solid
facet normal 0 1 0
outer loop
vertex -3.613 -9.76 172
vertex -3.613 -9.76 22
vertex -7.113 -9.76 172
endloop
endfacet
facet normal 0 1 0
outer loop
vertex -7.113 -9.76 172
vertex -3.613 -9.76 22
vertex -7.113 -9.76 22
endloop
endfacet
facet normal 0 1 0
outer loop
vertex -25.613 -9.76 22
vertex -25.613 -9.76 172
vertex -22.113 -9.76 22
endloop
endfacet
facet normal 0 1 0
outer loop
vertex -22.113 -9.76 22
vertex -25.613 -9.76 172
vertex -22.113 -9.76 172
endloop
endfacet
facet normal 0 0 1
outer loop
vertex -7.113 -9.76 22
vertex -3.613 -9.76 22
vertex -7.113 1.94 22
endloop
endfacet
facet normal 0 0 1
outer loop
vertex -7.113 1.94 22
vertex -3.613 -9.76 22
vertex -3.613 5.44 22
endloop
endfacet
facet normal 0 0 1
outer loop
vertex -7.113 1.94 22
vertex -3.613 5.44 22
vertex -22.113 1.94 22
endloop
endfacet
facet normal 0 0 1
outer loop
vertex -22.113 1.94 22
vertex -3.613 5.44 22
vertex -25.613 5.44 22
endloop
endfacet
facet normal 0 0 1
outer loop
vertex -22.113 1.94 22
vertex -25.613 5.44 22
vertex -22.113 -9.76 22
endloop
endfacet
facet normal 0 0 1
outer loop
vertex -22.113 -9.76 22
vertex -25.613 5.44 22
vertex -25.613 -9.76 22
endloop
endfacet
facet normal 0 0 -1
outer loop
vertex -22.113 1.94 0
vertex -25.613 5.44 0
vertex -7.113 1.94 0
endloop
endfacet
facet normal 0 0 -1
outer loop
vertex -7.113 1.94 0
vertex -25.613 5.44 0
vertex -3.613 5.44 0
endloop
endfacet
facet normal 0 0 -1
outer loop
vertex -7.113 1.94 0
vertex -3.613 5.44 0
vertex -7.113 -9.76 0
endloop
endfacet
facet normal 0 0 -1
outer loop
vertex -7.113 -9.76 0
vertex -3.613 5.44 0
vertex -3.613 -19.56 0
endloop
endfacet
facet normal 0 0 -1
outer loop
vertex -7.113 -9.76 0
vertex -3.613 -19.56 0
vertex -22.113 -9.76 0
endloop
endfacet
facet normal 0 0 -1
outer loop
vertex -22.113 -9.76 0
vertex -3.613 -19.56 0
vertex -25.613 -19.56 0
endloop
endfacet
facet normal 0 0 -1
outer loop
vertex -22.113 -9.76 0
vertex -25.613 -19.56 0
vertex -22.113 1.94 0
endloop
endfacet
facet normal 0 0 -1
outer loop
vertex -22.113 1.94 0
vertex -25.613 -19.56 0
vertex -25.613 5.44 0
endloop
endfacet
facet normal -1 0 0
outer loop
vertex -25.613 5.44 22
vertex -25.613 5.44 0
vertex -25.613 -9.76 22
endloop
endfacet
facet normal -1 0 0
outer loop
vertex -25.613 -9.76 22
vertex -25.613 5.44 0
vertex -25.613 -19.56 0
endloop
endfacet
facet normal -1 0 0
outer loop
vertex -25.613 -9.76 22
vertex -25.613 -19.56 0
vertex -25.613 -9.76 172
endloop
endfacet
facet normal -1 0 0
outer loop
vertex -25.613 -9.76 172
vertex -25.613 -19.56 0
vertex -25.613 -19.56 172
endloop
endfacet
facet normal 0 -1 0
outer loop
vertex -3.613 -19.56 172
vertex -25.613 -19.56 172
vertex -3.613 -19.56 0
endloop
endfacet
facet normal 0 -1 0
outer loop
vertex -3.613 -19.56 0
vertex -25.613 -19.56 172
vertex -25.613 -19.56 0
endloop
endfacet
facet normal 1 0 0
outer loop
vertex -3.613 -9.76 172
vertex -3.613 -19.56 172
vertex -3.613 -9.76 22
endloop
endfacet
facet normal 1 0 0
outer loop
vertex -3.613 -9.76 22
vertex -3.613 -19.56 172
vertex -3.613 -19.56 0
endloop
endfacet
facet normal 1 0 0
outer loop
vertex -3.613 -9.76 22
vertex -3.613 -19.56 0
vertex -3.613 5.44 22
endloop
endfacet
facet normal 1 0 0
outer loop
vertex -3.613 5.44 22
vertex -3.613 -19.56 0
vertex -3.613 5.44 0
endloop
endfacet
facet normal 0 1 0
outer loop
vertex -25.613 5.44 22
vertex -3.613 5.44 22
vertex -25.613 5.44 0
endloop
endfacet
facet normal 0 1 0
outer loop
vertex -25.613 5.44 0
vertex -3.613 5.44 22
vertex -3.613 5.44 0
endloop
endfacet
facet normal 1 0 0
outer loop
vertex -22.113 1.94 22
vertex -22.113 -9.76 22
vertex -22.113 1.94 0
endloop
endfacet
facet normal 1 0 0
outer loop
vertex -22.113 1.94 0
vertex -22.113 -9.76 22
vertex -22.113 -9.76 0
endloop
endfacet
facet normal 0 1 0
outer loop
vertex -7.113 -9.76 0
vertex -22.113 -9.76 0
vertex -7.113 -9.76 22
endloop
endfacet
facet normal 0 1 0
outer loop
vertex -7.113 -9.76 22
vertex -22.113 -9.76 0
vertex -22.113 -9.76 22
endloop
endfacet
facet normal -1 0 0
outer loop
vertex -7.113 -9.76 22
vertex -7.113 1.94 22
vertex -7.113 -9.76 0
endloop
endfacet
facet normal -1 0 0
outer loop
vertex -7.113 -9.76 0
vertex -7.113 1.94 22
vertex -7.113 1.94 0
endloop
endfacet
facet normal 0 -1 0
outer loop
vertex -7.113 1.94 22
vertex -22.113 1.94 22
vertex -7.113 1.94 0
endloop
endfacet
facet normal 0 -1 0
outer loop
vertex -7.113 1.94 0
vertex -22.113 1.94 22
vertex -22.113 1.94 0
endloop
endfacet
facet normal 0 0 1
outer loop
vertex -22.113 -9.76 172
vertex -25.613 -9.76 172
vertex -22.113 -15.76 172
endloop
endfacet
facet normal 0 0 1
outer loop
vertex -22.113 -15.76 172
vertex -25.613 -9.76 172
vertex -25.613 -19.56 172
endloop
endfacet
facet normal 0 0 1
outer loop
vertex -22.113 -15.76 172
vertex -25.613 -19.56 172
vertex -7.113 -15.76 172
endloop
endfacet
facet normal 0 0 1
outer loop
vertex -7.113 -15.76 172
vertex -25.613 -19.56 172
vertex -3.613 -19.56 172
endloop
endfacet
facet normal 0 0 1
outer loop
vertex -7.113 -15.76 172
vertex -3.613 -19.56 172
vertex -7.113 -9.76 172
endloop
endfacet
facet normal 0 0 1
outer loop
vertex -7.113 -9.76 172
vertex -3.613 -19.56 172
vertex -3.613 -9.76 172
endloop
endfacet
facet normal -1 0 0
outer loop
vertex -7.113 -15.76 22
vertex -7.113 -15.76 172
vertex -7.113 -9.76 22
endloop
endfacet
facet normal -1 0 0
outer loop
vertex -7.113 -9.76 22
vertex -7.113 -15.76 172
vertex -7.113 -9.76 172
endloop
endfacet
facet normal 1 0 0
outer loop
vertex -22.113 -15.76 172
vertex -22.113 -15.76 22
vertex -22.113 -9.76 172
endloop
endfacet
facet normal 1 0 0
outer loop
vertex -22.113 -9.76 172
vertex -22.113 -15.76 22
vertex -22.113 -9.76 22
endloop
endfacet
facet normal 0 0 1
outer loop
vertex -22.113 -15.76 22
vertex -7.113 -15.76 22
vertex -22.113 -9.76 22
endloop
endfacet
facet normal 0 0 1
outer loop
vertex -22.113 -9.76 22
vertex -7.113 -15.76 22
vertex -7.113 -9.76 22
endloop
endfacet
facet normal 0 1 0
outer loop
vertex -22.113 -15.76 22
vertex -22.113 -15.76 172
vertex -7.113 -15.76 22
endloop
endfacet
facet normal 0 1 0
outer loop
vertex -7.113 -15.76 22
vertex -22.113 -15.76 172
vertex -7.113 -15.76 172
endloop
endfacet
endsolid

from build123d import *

# Parameters (mm, degrees)
SKETCH_2_W          = 22
SKETCH_2_H          = 25
SKETCH_2_W_2        = 15
SKETCH_2_H_2        = 11.7
EXTRUDE_1_DEPTH     = 22
SKETCH_3_W          = 22
SKETCH_3_H          = 9.8
EXTRUDE_2_DEPTH     = 150
SKETCH_4_W          = 15
SKETCH_4_H          = 150
CUT_EXTRUDE_1_DEPTH = 6


with BuildPart() as part:
    # 草圖2 → 填料-伸長1 (new body)
    with BuildSketch(Plane.XY):
        with Locations((-14.61342143, -7.059615385)):
            Rectangle(SKETCH_2_W, SKETCH_2_H)
        with Locations((-14.61342143, -3.909615385)):
            Rectangle(SKETCH_2_W_2, SKETCH_2_H_2, mode=Mode.SUBTRACT)
    extrude(amount=EXTRUDE_1_DEPTH)

    # 草圖3 → 填料-伸長2 (add)
    with BuildSketch(Plane.XY.offset(22)):
        with Locations((-14.61342143, -14.659615385)):
            Rectangle(SKETCH_3_W, SKETCH_3_H)
    extrude(amount=EXTRUDE_2_DEPTH)

    # 草圖4 → 除料-伸長1 (cut)
    with BuildSketch(Plane(origin=(0, -9.759615385, 0), x_dir=(1, 0, 0), z_dir=(0, 1, 0))):
        with Locations((-14.61342143, -97)):
            Rectangle(SKETCH_4_W, SKETCH_4_H)
    extrude(amount=-CUT_EXTRUDE_1_DEPTH, mode=Mode.SUBTRACT)


solid = part.part
